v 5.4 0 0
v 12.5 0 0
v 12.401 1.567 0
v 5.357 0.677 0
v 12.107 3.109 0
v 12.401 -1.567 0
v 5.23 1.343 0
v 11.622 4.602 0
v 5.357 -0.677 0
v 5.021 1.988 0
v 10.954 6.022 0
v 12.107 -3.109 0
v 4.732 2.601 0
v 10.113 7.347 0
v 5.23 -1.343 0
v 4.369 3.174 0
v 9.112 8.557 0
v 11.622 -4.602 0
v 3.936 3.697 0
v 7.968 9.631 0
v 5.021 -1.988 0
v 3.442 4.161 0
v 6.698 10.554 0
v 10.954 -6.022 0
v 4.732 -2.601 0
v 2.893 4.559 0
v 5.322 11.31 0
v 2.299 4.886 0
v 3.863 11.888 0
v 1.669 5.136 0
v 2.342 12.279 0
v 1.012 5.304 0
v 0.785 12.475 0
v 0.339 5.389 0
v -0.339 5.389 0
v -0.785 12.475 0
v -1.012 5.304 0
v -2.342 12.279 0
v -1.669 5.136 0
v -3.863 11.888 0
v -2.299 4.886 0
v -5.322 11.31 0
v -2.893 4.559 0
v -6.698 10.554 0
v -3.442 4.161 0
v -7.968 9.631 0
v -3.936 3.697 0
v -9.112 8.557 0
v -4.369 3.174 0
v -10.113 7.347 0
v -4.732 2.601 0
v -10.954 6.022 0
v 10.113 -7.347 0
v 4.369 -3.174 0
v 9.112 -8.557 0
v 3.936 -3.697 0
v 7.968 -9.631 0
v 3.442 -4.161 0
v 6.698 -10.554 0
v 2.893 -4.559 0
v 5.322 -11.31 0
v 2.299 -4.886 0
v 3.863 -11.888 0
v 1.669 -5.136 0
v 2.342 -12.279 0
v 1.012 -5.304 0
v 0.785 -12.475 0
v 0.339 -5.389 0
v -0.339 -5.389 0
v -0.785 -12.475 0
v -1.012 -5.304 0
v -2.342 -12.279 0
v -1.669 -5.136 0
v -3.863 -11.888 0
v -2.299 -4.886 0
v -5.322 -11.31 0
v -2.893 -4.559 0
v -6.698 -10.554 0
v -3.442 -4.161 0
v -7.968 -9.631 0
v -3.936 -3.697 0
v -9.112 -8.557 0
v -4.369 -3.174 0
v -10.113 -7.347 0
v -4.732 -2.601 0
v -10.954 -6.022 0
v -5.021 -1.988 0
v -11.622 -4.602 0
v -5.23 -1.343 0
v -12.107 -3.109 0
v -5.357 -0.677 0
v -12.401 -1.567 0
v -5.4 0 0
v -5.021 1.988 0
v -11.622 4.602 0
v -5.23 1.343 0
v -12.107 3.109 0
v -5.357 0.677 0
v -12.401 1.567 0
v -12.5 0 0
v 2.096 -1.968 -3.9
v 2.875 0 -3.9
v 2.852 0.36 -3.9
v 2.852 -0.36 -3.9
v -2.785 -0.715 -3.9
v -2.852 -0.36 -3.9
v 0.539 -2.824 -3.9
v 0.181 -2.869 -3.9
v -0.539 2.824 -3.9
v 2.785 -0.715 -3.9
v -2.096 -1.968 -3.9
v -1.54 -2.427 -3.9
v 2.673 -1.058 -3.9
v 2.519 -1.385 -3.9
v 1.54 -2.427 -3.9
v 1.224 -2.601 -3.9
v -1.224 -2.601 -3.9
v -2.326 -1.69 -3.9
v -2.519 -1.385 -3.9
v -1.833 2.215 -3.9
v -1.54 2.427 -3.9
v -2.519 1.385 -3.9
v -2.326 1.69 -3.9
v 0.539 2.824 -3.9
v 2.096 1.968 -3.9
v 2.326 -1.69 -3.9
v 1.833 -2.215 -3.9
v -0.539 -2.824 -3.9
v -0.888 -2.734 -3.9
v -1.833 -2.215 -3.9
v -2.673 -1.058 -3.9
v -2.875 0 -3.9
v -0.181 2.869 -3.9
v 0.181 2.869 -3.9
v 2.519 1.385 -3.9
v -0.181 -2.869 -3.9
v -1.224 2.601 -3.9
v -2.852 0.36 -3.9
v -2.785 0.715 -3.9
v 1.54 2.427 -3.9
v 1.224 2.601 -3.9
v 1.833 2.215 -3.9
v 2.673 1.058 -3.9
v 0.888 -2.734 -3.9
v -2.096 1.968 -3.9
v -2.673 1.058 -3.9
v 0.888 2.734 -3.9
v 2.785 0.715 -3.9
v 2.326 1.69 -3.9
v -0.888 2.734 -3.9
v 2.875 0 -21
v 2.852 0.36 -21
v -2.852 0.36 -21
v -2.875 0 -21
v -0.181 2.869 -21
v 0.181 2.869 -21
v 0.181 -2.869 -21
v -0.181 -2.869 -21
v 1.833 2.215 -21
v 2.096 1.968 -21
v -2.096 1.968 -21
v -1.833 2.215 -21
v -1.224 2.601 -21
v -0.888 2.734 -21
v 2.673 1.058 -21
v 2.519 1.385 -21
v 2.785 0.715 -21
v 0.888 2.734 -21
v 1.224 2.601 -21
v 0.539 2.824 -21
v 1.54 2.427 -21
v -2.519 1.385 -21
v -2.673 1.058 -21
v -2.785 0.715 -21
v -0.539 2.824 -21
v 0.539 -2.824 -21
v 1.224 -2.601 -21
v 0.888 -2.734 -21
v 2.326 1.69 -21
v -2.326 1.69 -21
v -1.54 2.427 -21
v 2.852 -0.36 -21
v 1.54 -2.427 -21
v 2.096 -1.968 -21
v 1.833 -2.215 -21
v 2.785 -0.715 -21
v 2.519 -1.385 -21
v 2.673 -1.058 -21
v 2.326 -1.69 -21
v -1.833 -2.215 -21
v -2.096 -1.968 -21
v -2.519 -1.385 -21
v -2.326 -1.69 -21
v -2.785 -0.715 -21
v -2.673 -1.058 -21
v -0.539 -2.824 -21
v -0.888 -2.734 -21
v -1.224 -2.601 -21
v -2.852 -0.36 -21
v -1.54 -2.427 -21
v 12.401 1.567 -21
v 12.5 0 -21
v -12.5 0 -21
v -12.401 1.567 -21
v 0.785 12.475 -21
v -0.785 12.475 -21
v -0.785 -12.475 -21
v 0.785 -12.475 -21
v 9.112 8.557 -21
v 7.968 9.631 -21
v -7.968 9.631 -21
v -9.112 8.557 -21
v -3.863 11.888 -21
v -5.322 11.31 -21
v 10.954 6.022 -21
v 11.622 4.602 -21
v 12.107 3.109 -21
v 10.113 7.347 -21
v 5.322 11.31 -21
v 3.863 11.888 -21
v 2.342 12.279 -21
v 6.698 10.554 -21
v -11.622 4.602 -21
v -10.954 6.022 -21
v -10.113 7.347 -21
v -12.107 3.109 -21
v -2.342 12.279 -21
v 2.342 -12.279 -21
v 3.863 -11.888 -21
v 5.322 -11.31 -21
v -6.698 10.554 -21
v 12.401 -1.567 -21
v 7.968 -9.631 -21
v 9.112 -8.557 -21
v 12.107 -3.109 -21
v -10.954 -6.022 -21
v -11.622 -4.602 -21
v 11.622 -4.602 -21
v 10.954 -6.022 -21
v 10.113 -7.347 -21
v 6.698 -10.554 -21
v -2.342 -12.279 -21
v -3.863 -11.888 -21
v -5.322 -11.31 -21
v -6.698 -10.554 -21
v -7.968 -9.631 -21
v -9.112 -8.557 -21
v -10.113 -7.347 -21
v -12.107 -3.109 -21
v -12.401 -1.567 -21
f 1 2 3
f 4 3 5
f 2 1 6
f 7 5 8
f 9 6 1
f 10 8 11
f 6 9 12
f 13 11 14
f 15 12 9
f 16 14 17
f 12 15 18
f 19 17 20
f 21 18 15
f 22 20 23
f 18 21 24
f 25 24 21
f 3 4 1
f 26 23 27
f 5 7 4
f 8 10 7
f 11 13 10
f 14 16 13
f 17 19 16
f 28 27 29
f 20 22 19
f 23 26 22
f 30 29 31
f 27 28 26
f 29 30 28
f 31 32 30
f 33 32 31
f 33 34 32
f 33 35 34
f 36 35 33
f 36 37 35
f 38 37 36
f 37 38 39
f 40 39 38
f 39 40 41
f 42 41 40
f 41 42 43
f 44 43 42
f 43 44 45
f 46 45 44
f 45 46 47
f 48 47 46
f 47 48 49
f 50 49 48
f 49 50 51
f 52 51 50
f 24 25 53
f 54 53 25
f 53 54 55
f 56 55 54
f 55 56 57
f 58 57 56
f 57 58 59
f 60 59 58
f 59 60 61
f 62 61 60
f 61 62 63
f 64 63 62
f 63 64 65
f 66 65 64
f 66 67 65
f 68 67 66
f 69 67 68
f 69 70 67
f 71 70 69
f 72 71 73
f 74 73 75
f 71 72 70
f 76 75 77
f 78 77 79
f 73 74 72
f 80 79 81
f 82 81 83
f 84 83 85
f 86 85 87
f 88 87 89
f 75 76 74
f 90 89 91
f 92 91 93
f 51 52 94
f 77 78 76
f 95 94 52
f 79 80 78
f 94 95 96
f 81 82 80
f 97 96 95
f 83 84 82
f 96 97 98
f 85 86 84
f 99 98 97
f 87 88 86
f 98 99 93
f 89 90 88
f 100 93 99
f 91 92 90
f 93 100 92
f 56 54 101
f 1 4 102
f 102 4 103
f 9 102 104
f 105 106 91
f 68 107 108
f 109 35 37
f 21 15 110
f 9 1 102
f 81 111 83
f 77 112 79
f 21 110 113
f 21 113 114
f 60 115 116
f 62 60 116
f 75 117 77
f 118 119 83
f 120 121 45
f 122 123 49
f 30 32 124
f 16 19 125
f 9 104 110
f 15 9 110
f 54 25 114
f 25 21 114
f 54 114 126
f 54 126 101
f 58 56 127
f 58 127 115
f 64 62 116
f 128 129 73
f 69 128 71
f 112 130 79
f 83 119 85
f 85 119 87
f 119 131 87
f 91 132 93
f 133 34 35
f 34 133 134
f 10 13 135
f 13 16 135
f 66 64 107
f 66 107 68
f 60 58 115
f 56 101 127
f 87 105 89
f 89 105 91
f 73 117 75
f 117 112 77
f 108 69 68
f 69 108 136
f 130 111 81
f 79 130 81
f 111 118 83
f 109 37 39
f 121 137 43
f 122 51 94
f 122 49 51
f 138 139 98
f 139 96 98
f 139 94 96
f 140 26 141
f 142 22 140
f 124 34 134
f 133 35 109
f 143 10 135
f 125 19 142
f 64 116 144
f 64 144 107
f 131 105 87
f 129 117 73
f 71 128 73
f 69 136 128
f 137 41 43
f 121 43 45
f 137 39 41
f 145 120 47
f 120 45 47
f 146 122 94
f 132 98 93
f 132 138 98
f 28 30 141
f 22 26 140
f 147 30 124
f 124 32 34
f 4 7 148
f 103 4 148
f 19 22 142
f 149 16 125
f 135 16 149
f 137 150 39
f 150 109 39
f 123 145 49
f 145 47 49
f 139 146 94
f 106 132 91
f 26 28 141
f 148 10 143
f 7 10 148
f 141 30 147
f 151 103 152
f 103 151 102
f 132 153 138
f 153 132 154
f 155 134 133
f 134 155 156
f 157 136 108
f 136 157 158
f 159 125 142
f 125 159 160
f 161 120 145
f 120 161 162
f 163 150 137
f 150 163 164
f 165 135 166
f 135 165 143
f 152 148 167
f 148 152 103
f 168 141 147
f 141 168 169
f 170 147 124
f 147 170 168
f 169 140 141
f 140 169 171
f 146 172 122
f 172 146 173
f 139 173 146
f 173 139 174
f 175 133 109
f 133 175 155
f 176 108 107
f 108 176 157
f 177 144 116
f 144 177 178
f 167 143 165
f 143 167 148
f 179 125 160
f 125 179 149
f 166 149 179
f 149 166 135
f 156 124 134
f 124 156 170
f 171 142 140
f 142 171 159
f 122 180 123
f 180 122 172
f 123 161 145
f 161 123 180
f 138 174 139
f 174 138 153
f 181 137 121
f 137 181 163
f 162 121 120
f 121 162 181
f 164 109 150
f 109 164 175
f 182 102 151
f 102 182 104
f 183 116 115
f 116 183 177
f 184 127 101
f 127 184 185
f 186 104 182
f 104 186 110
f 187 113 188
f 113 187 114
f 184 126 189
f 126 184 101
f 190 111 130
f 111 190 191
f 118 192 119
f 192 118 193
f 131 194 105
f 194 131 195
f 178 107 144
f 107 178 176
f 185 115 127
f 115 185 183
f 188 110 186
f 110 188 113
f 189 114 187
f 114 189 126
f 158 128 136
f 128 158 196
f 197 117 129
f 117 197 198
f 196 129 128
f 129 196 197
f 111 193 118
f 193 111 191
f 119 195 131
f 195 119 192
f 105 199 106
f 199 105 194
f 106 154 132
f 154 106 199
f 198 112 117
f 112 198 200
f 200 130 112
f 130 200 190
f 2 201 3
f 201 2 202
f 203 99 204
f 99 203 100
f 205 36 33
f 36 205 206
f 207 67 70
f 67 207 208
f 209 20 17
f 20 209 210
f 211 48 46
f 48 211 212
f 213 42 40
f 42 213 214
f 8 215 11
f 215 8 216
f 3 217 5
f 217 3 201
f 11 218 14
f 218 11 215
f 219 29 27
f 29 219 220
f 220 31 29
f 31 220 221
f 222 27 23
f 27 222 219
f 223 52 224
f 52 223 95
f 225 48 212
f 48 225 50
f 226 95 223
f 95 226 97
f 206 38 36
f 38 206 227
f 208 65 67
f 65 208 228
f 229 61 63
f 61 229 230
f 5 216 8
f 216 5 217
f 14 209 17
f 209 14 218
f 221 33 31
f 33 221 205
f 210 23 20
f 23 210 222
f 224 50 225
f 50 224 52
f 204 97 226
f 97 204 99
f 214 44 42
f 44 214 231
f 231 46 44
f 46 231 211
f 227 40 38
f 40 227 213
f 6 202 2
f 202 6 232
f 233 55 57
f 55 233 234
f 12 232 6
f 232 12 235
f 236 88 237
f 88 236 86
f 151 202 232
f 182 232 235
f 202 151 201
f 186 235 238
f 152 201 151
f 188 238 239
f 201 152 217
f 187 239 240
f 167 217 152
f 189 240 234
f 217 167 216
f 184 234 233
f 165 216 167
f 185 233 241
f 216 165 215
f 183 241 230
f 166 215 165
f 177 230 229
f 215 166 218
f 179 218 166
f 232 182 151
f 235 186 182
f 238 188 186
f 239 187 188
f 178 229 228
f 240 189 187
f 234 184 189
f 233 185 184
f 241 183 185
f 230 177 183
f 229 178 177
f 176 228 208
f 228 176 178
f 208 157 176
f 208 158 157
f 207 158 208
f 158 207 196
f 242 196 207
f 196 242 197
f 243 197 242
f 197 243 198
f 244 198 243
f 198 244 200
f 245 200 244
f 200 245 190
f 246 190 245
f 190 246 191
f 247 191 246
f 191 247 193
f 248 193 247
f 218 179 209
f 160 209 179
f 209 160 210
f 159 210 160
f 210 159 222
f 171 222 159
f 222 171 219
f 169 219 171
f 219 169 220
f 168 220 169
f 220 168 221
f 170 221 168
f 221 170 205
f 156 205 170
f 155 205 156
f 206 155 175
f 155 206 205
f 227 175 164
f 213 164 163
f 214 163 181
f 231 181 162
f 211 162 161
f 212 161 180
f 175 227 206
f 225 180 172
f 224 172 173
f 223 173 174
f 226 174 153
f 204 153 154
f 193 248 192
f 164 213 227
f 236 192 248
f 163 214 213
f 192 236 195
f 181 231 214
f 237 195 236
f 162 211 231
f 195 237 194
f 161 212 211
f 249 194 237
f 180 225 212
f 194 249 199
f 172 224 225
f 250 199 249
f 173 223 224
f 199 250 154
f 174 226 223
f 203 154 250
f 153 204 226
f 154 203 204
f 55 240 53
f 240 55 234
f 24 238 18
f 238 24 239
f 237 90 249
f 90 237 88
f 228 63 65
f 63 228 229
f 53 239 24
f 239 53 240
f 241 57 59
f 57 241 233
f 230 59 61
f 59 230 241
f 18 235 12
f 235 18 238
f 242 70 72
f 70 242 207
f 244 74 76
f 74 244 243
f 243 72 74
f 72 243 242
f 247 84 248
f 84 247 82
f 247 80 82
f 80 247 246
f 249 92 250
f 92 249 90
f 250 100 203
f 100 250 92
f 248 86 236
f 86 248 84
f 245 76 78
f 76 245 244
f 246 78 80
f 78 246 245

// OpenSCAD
$fn = 50;


difference() {
	union() {
		translate(v = [0, 0, -21.0000000000]) {
			cylinder(h = 21, r = 12.5000000000);
		}
	}
	union() {
		translate(v = [0, 0, 0]) {
			rotate(a = [0, 0, 0]) {
				difference() {
					union() {
						translate(v = [0, 0, -24.0000000000]) {
							cylinder(h = 24, r = 2.6000000000);
						}
						translate(v = [0, 0, -3.9000000000]) {
							cylinder(h = 3.9000000000, r1 = 2.8750000000, r2 = 5.4000000000);
						}
						translate(v = [0, 0, -24.0000000000]) {
							cylinder(h = 24, r = 2.8750000000);
						}
						translate(v = [0, 0, -24.0000000000]) {
							cylinder(h = 24, r = 2.6000000000);
						}
					}
					union();
				}
			}
		}
	}
}
